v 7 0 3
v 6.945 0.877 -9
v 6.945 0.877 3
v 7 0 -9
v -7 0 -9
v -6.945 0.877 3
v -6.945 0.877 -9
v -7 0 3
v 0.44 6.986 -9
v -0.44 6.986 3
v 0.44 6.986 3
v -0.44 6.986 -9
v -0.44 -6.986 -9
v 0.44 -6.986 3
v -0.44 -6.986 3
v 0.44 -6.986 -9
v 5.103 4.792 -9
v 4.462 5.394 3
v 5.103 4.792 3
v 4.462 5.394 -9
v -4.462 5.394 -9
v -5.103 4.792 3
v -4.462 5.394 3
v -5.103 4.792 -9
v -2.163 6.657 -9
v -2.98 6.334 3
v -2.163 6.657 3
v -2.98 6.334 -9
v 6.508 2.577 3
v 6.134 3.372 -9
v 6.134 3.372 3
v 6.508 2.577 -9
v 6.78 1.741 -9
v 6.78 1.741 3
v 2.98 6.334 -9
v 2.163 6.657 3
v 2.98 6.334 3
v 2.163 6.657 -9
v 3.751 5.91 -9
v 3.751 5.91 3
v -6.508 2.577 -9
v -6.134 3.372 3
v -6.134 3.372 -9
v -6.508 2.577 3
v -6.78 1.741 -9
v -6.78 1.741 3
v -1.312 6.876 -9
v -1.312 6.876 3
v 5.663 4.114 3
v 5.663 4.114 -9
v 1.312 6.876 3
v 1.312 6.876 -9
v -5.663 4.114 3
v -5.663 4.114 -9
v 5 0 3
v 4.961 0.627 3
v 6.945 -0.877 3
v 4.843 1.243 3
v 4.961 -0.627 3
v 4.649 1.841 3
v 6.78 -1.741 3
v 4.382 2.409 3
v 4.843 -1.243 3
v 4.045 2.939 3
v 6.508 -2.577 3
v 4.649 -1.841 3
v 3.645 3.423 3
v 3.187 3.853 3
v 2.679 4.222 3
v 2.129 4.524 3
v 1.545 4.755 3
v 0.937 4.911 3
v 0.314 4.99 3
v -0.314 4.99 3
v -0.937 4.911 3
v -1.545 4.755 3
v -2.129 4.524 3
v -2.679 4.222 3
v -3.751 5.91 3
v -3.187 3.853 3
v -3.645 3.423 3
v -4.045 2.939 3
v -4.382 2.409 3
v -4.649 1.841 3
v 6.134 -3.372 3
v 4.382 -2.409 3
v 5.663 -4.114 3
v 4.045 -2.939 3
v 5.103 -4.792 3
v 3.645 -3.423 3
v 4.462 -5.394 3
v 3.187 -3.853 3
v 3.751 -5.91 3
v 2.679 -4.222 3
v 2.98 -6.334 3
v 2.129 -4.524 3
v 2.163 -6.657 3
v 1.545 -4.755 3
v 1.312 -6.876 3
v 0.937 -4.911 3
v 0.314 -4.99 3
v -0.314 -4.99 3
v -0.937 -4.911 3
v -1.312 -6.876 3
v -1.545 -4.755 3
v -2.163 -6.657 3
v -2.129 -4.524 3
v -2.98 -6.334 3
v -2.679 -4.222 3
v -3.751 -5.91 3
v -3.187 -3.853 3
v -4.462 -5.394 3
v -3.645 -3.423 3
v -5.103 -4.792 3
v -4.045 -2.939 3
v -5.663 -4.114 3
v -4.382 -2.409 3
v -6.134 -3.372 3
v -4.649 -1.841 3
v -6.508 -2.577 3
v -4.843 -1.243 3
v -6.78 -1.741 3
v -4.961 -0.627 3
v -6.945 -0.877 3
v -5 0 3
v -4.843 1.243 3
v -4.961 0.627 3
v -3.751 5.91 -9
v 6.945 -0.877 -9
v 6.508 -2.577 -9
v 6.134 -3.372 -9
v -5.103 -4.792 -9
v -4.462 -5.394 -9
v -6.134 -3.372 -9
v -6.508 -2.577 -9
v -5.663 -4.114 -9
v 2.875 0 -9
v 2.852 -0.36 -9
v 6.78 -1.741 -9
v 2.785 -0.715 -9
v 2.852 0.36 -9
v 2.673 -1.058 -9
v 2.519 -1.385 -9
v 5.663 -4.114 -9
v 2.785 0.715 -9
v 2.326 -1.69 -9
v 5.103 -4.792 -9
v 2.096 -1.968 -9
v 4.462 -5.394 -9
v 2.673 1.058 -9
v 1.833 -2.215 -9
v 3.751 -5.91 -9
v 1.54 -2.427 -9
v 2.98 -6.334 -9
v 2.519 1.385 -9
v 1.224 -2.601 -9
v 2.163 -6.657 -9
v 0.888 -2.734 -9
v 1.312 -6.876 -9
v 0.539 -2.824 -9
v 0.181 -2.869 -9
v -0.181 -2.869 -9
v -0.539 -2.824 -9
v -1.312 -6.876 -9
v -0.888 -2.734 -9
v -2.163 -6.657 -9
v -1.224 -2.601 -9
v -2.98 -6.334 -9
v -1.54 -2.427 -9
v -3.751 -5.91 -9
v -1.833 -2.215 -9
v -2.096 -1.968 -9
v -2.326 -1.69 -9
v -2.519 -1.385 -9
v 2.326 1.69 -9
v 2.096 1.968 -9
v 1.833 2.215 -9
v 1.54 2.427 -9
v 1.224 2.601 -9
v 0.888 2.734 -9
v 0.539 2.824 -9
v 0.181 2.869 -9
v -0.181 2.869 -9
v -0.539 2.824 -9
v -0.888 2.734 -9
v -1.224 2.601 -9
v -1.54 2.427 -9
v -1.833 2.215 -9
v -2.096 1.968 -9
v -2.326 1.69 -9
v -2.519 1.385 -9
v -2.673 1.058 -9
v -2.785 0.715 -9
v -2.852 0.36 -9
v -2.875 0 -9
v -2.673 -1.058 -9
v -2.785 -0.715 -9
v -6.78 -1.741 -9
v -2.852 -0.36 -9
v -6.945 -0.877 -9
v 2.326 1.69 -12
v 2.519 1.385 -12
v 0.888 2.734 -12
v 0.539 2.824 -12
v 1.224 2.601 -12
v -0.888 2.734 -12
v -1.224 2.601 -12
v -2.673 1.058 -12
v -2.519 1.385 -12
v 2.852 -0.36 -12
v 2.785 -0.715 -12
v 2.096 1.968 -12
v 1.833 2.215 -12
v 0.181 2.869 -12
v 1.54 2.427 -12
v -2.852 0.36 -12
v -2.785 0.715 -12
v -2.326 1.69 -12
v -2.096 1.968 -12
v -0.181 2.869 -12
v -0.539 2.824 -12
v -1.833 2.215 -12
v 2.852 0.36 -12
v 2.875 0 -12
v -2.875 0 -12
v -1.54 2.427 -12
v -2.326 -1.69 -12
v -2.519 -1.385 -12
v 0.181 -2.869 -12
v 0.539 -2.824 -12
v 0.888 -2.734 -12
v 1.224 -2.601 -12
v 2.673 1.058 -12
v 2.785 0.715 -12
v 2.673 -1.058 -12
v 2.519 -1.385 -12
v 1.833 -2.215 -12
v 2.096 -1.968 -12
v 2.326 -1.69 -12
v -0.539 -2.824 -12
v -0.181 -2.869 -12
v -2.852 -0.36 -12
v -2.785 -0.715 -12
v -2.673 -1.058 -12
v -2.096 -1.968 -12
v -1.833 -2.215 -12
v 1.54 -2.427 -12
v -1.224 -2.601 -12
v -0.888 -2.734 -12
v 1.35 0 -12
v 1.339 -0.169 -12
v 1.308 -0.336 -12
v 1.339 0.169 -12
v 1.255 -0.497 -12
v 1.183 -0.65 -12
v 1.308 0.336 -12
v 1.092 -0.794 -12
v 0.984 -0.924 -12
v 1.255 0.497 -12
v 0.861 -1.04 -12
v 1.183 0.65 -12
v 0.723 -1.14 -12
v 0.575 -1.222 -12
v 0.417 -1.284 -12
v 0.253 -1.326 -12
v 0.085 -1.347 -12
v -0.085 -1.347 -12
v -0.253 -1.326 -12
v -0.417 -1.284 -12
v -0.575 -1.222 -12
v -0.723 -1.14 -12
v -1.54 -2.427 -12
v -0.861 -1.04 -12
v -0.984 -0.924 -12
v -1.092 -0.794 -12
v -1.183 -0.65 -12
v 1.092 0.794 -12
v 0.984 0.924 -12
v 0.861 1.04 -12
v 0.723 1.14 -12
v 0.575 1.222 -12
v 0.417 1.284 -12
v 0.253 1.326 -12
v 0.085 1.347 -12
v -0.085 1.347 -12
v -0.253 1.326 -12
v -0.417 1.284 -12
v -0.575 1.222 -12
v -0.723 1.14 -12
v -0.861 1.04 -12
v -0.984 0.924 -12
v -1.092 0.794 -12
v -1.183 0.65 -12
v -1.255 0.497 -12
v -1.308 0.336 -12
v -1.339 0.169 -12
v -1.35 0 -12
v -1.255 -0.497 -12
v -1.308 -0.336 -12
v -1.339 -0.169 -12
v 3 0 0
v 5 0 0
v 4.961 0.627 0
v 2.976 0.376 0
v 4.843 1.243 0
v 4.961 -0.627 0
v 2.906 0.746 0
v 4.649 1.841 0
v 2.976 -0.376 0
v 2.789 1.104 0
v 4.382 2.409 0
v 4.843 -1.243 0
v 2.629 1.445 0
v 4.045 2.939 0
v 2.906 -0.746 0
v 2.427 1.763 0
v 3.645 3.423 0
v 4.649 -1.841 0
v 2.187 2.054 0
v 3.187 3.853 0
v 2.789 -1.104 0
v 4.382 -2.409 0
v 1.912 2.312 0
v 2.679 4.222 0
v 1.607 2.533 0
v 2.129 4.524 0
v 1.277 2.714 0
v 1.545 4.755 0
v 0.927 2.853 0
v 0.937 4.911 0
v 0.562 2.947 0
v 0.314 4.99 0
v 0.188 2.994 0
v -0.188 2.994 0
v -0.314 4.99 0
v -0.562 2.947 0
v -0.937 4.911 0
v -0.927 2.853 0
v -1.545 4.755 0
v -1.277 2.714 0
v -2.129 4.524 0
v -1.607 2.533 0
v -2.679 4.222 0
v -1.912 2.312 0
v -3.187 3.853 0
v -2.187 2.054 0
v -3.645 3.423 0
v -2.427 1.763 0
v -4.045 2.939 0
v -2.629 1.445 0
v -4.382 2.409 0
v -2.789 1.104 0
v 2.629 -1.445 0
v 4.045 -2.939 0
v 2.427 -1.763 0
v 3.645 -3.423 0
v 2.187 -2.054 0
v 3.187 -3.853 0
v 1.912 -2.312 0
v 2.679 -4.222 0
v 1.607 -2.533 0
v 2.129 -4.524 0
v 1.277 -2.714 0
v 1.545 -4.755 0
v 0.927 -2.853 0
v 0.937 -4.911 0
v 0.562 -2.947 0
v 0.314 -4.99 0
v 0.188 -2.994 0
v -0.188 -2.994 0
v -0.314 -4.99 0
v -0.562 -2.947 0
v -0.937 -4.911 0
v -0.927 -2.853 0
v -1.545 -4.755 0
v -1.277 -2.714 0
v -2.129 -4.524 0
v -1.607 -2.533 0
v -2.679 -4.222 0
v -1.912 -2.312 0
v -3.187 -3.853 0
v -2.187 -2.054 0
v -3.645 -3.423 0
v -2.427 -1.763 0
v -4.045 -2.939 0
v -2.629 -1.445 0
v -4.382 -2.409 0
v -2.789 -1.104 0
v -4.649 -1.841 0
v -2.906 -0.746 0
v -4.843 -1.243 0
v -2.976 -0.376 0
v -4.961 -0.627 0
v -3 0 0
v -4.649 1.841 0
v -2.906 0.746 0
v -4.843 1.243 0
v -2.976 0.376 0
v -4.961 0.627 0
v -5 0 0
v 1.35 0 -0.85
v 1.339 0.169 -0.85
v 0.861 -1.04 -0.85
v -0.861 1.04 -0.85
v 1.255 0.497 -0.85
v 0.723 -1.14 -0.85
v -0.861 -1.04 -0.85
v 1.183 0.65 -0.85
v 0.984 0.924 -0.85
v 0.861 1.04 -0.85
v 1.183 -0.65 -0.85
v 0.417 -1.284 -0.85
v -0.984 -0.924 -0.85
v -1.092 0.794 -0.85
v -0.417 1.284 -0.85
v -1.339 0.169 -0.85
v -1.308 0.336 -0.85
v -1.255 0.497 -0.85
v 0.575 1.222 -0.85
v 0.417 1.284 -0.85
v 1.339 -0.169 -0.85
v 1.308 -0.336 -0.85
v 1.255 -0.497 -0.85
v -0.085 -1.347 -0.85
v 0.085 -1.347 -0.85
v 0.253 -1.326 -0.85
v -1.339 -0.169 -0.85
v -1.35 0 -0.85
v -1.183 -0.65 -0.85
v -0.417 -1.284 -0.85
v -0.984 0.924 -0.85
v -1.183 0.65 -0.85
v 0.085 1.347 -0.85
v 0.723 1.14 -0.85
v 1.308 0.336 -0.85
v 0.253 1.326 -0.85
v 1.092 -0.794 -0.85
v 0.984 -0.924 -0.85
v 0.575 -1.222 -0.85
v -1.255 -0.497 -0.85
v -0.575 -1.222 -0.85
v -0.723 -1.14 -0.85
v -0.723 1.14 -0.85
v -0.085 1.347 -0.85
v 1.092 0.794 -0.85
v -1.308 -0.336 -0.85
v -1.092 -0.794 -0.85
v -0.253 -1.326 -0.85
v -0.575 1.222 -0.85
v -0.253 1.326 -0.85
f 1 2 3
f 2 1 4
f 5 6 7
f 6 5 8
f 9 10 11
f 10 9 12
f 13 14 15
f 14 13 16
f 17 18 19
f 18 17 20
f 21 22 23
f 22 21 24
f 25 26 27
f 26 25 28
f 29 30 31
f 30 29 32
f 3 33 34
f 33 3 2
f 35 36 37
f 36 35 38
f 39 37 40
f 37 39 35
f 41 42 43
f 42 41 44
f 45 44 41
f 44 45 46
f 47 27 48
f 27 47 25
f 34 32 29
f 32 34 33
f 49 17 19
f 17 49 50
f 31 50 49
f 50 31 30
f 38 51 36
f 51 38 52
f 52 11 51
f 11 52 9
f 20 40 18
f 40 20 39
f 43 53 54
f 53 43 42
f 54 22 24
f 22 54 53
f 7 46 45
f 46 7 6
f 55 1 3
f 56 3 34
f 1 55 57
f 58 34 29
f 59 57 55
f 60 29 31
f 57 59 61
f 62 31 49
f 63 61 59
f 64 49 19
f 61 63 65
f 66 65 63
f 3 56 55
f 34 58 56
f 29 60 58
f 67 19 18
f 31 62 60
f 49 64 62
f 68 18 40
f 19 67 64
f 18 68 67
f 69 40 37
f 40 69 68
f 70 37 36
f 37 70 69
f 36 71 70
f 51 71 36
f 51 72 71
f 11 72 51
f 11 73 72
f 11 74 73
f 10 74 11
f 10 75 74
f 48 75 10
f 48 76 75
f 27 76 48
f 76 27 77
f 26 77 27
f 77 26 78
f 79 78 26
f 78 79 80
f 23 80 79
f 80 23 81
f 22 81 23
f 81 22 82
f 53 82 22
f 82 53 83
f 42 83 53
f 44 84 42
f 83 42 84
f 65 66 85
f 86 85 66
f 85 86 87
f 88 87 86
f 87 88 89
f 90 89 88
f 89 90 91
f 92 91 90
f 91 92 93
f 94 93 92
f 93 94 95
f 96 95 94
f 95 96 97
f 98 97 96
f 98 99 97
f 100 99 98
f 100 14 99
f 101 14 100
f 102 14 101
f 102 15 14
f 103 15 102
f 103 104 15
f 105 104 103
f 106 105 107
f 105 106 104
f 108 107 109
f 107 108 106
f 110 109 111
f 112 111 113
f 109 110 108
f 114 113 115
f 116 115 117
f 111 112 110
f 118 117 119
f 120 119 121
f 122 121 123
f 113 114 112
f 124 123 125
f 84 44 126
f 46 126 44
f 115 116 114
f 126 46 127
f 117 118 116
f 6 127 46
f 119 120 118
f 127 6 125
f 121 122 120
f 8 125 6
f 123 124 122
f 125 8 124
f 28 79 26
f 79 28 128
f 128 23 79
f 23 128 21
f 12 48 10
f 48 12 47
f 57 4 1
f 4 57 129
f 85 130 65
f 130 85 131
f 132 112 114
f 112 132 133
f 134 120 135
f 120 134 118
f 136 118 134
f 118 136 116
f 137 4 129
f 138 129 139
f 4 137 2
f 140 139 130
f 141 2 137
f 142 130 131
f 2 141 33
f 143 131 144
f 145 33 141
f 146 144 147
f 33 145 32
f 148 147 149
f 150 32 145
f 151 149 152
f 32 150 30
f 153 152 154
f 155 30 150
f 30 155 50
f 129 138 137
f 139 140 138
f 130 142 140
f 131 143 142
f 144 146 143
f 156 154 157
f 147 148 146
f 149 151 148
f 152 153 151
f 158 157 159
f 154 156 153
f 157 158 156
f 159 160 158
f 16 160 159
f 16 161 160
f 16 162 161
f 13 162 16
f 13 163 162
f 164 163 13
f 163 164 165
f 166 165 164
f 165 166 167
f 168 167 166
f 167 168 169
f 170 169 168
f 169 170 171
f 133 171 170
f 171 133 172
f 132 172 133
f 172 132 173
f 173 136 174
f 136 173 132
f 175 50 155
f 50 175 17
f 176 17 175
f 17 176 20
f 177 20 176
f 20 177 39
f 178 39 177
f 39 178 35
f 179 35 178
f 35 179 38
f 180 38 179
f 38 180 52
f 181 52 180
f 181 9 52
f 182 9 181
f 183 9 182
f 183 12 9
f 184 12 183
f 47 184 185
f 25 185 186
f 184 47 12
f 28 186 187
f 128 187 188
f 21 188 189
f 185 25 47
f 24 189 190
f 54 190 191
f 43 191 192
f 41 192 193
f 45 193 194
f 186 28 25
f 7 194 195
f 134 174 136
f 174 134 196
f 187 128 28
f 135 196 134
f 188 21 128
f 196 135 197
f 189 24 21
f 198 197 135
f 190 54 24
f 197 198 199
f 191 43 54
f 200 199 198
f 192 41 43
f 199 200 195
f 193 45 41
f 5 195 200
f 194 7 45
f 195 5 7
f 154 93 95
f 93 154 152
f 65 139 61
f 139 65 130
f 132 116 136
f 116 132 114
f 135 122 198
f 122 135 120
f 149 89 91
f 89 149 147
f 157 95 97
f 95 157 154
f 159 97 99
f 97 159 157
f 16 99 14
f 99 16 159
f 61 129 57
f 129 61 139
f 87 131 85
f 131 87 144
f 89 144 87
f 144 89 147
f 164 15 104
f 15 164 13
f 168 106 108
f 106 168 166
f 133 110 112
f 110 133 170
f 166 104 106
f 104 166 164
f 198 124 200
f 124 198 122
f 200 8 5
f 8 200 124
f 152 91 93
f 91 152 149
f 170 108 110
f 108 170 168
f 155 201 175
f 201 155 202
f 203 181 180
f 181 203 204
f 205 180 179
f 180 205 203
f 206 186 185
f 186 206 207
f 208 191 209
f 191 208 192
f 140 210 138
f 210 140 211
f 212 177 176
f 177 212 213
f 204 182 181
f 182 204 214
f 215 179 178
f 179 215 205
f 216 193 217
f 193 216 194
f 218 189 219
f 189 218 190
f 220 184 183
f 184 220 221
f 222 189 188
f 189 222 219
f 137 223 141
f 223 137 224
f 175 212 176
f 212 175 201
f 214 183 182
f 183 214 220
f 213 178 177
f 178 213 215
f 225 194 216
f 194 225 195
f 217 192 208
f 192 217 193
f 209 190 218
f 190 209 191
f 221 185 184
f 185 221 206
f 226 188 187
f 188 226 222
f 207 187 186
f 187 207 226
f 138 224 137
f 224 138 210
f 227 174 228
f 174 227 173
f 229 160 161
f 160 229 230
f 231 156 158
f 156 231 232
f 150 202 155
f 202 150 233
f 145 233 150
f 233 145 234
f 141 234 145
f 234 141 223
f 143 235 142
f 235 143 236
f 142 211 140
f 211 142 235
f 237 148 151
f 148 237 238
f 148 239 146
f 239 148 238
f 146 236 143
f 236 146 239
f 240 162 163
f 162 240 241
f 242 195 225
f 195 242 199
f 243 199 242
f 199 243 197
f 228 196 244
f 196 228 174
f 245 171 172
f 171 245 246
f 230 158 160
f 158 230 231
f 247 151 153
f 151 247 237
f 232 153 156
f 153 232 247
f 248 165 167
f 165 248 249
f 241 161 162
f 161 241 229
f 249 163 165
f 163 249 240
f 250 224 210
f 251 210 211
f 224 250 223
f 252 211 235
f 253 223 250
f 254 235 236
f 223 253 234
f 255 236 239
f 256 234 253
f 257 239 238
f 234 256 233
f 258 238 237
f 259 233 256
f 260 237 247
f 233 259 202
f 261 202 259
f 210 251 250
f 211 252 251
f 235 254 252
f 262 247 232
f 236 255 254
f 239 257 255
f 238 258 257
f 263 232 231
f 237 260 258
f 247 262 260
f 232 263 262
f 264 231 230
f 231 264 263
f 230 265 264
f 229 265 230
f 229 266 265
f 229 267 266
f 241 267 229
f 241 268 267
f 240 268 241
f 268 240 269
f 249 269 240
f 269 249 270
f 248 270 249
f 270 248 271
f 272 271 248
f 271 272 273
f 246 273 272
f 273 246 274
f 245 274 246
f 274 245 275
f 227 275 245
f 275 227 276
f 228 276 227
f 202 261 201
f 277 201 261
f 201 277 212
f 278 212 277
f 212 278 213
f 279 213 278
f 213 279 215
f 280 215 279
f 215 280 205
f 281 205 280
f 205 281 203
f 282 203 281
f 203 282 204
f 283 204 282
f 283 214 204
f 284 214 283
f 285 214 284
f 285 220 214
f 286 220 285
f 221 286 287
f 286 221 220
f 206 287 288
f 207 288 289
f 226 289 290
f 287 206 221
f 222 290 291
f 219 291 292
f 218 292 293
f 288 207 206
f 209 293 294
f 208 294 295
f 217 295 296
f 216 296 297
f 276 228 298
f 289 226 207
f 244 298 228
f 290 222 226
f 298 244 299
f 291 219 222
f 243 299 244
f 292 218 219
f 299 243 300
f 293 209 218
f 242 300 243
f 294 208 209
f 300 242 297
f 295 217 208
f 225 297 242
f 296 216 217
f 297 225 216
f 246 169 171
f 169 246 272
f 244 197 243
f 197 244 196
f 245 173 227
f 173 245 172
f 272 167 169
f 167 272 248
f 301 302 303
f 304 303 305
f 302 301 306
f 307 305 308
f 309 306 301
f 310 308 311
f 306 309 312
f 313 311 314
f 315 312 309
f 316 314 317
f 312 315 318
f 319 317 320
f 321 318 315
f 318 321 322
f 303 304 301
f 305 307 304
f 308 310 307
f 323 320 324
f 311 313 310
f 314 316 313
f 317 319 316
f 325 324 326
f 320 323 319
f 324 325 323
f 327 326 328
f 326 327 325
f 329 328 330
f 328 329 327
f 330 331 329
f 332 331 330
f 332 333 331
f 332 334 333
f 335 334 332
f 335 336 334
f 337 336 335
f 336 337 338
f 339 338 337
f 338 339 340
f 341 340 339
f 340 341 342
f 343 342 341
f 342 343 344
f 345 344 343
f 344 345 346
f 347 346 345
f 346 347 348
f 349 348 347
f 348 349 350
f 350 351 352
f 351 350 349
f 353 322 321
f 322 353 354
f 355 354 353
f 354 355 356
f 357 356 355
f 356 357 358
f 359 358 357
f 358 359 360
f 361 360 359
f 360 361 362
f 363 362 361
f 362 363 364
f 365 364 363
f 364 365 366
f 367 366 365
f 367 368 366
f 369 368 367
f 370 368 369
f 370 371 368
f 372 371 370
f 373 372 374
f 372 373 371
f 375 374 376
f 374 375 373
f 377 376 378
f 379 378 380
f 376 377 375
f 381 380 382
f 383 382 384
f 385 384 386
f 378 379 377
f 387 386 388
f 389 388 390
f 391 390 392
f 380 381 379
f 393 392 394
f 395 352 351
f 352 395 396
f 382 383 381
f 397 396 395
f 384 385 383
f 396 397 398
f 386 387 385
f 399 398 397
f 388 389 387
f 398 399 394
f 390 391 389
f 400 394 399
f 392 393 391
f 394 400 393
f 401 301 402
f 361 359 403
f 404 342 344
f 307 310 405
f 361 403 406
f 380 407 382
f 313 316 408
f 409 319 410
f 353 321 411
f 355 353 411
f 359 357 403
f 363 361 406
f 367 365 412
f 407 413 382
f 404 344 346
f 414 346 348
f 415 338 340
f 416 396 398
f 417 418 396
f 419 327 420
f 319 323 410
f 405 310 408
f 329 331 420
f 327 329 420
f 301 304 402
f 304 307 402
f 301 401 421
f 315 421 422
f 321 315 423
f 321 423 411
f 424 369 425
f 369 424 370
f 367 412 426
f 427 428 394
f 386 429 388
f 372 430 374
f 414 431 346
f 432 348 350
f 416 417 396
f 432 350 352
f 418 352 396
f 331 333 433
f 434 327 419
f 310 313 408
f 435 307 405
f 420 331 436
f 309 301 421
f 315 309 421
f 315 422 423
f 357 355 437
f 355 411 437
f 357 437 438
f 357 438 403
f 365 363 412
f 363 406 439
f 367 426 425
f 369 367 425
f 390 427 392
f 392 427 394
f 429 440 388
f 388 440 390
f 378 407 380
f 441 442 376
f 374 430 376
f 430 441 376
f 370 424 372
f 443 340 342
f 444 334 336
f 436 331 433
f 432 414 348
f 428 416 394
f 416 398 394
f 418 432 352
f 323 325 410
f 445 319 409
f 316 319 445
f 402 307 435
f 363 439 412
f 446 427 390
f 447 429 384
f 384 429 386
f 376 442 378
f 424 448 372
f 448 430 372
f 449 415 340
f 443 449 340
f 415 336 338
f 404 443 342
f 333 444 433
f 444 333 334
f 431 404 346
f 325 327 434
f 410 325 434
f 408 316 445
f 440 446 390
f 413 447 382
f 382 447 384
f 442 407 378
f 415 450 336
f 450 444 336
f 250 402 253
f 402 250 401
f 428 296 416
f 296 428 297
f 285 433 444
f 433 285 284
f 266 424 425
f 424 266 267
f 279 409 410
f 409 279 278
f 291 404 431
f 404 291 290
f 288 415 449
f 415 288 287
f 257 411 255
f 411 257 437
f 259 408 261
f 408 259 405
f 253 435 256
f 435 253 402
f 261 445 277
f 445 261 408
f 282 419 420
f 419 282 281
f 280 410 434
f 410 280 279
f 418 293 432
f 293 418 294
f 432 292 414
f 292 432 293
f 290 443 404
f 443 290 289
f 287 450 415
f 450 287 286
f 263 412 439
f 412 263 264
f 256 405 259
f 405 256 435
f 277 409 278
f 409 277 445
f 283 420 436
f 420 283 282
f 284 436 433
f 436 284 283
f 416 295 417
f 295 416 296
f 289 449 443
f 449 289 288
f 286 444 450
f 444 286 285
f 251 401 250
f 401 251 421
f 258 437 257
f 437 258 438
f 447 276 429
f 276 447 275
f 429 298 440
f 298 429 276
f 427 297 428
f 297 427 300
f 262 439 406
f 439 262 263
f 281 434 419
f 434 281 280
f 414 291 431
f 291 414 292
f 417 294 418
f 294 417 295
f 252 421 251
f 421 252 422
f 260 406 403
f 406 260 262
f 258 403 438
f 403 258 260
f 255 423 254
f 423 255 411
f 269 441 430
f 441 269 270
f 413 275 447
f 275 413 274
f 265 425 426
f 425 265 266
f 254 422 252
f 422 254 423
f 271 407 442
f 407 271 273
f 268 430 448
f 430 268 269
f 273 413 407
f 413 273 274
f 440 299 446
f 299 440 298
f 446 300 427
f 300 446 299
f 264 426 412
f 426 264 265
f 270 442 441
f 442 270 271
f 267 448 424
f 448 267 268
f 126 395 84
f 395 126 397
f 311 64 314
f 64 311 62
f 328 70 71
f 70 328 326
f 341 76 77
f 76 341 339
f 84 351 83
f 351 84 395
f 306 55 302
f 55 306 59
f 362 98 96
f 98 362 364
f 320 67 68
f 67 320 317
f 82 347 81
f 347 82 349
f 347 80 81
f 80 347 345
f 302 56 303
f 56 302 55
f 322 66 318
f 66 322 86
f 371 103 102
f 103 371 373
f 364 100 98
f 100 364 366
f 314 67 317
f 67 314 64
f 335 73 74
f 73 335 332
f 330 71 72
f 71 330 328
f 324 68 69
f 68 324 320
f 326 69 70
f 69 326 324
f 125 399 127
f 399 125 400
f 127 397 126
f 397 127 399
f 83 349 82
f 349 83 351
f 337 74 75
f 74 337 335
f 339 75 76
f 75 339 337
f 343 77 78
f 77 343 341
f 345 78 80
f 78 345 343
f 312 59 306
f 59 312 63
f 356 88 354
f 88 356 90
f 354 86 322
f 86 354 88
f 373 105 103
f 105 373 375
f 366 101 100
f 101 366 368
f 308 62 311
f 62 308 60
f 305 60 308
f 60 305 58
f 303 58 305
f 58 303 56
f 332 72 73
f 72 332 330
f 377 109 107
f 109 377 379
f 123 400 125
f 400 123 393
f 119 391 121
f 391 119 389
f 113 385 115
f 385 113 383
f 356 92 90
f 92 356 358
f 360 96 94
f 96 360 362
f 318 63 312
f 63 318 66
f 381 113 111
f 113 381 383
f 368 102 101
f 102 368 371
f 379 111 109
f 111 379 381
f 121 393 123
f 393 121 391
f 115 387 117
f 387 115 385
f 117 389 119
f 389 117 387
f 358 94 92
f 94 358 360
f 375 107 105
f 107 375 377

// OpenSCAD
$fn = 50;


difference() {
	union() {
		translate(v = [0, 0, -9.0000000000]) {
			cylinder(h = 12, r = 7.0000000000);
		}
		#translate(v = [0, 0, -12.0000000000]) {
			cylinder(h = 12, r = 2.8750000000);
		}
	}
	union() {
		translate(v = [0, 0, 0]) {
			rotate(a = [0, 0, 0]) {
				difference() {
					union() {
						translate(v = [0, 0, -12.0000000000]) {
							cylinder(h = 12, r = 1.0000000000);
						}
						translate(v = [0, 0, -0.8500000000]) {
							cylinder(h = 0.8500000000, r1 = 1.3500000000, r2 = 3.0000000000);
						}
						translate(v = [0, 0, -12.0000000000]) {
							cylinder(h = 12, r = 1.3500000000);
						}
						translate(v = [0, 0, -12.0000000000]) {
							cylinder(h = 12, r = 1.0000000000);
						}
					}
					union();
				}
			}
		}
		#cylinder(h = 3, r = 5.0000000000);
	}
}
